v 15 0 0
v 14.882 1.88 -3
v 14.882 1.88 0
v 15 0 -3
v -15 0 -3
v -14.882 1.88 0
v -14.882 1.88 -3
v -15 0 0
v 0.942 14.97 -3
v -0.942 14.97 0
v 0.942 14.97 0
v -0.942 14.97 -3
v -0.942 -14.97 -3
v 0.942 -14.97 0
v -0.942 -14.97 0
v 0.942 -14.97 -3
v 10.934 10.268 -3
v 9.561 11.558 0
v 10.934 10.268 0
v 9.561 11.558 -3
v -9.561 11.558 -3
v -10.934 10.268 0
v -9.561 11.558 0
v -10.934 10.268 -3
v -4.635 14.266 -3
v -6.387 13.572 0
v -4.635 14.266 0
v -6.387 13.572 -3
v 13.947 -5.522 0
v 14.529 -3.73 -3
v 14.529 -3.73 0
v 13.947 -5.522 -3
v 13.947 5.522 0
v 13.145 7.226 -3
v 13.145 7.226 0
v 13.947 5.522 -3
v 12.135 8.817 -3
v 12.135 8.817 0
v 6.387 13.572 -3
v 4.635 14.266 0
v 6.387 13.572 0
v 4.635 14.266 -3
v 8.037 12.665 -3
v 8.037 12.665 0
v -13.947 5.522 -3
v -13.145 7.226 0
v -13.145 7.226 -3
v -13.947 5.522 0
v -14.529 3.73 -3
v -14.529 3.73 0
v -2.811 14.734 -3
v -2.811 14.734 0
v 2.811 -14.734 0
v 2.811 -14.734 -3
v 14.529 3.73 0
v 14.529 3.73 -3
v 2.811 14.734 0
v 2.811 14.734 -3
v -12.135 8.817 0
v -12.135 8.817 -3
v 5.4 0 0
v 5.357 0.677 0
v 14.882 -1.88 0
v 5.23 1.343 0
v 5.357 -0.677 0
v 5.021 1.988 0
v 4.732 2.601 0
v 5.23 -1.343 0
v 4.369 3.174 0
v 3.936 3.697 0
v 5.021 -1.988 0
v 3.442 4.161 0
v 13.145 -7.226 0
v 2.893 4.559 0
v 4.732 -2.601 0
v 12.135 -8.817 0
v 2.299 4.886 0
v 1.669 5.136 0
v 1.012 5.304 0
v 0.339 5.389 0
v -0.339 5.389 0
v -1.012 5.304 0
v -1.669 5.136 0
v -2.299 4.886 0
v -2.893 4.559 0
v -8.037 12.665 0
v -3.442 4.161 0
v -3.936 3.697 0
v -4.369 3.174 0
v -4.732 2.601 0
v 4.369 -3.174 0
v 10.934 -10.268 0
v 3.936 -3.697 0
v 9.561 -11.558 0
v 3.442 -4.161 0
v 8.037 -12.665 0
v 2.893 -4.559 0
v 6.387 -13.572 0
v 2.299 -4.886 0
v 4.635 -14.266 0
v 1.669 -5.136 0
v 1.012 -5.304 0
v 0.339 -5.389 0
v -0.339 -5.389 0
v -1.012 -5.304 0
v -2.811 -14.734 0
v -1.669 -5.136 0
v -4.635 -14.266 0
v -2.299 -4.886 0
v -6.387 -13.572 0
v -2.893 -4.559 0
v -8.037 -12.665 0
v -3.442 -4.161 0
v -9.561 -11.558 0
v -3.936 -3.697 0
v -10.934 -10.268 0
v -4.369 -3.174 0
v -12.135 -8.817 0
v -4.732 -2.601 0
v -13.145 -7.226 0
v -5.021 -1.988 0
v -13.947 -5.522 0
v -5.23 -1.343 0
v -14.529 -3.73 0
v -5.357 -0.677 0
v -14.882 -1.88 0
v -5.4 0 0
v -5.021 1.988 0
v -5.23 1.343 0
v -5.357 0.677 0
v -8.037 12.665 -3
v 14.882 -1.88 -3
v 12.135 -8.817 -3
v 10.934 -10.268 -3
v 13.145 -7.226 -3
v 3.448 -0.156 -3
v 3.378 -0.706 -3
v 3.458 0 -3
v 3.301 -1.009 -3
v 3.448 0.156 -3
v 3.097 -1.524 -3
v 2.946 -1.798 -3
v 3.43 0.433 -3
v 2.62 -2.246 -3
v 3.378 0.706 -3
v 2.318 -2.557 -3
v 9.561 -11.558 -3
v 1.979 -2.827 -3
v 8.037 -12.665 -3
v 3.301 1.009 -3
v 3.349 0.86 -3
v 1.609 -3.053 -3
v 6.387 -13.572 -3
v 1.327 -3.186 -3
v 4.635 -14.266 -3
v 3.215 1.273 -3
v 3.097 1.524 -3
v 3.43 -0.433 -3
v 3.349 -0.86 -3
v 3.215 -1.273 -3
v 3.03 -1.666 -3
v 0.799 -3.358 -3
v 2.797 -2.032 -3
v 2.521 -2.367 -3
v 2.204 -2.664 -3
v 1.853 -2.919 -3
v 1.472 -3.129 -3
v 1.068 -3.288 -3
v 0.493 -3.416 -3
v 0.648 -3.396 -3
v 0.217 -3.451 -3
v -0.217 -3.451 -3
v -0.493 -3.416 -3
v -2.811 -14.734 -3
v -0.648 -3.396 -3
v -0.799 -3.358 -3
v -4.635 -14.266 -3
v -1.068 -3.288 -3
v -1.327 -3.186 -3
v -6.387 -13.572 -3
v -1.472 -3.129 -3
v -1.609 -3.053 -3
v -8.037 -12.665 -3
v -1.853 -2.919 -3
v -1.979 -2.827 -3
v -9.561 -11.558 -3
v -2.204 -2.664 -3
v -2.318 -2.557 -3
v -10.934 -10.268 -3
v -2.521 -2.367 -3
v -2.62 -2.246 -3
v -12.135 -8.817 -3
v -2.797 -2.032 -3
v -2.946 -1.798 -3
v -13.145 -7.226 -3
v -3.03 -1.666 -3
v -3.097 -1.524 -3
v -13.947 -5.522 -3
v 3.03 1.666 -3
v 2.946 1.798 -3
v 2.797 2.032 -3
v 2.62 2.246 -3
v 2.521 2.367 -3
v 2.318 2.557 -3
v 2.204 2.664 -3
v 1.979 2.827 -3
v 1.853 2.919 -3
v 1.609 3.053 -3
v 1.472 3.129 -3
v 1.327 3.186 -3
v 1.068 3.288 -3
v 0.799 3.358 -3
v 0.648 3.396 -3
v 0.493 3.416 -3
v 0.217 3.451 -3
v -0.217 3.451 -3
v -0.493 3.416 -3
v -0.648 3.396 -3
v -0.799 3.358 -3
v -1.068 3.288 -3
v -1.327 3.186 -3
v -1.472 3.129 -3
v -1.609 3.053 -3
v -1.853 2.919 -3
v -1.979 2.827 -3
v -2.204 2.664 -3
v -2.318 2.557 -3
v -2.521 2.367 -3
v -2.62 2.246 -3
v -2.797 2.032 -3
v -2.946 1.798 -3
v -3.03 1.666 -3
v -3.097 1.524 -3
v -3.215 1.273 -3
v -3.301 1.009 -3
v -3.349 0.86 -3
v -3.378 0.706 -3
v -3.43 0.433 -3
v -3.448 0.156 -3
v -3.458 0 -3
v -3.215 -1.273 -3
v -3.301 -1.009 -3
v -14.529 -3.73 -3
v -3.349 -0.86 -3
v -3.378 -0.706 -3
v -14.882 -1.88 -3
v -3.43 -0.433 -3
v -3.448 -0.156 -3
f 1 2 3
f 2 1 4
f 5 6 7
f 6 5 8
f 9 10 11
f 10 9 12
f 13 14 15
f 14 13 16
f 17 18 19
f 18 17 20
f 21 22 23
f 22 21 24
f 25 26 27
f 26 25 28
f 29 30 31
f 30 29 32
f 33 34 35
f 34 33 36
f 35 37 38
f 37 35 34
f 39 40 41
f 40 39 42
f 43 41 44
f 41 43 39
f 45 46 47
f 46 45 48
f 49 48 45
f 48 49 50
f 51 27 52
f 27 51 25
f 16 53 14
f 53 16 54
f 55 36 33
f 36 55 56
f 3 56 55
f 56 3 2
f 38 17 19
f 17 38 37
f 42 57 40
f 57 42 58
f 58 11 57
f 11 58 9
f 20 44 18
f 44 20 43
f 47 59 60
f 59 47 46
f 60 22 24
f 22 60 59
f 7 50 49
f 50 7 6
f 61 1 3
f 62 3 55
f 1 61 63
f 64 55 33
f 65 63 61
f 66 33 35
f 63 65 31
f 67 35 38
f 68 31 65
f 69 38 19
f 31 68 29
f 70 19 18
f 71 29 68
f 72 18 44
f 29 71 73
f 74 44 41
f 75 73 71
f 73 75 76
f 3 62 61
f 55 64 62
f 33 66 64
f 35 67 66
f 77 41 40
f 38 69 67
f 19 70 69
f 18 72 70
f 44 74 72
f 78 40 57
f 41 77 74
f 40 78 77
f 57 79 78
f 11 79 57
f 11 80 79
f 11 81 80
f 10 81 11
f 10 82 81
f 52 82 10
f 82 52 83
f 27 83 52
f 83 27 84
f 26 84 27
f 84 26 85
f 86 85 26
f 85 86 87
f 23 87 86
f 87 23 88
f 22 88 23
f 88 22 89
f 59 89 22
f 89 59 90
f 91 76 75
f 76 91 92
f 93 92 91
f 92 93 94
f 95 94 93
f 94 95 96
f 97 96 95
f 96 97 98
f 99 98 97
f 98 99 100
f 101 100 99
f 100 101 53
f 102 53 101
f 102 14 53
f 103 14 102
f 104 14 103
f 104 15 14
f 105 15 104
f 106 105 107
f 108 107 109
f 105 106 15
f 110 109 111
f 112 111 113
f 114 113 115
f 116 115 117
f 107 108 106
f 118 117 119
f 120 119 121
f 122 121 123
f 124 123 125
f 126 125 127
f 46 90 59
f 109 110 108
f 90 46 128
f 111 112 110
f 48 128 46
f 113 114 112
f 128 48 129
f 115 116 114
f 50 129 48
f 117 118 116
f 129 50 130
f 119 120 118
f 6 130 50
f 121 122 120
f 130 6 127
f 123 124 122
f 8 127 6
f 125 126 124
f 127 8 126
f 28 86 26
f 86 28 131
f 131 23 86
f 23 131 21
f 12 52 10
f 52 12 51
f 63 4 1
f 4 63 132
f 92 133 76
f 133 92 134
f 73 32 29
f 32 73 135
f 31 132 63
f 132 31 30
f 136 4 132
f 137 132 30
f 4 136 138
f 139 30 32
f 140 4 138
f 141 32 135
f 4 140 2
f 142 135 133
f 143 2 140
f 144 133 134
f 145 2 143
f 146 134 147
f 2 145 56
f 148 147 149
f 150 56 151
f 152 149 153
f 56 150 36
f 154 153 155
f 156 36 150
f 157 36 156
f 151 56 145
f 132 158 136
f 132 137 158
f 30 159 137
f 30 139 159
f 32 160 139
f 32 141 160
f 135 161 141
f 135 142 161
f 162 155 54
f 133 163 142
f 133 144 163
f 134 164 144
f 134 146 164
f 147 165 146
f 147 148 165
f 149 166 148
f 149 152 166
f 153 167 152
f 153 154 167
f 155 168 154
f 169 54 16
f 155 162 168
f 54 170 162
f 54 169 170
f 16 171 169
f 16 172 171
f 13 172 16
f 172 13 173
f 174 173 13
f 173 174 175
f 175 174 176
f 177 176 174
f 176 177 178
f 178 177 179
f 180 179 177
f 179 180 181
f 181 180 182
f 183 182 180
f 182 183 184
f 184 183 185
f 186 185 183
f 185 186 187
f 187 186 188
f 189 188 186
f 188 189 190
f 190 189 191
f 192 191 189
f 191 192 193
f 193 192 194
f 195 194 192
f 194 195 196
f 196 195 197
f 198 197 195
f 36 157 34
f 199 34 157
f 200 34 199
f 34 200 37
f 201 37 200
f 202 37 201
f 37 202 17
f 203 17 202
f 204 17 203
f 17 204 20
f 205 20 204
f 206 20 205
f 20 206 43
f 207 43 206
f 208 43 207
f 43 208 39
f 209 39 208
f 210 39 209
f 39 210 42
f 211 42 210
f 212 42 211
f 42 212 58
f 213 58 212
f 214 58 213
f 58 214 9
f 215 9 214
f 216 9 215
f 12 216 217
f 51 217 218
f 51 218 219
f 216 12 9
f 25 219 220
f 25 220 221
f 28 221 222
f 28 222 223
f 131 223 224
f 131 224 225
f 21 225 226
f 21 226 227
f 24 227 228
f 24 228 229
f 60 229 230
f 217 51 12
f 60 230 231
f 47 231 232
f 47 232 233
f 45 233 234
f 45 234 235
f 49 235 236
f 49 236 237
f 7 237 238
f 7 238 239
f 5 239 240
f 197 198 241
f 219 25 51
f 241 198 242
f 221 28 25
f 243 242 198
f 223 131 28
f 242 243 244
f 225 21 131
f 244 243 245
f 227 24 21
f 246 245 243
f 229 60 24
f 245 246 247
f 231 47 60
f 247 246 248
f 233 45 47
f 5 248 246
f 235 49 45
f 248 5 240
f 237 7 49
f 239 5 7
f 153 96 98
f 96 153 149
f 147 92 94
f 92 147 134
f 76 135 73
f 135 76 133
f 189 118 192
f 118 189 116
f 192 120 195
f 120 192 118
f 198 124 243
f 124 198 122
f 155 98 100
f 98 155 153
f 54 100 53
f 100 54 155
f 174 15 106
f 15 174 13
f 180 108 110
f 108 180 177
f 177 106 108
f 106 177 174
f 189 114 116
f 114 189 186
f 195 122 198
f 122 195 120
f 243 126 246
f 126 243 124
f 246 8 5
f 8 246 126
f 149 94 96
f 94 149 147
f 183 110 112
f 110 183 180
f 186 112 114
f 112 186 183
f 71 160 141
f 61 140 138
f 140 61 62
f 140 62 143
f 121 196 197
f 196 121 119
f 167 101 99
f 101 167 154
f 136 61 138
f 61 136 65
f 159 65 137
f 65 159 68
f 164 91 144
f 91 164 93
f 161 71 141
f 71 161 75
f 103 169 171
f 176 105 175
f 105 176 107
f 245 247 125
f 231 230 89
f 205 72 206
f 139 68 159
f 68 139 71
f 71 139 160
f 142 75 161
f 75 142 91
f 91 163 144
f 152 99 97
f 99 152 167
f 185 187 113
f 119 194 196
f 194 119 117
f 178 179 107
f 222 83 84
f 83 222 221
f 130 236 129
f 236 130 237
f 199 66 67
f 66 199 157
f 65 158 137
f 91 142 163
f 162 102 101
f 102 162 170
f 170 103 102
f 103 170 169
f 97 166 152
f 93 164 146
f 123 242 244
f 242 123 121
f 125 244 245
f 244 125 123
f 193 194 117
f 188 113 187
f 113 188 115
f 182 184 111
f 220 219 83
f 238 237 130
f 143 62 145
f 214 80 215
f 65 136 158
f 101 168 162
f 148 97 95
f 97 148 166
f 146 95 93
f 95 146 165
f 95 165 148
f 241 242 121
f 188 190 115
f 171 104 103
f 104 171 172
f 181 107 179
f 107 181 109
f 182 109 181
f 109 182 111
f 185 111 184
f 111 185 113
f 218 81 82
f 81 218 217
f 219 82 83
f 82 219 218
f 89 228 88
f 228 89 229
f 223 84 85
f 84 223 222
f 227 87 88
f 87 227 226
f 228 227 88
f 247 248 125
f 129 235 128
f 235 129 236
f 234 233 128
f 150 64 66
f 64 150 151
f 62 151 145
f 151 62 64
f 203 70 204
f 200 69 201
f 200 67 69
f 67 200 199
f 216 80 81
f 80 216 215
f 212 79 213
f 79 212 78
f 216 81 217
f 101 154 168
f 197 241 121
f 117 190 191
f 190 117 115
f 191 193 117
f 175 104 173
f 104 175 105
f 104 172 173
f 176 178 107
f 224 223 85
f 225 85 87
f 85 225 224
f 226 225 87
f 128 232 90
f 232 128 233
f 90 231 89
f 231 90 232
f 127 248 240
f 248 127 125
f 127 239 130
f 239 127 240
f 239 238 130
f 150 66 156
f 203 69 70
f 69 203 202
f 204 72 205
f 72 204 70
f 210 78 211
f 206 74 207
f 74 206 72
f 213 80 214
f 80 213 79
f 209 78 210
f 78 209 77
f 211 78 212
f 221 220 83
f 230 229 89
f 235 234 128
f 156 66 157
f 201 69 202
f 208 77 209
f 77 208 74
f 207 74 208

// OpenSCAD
$fn = 50;


difference() {
	union() {
		translate(v = [0, 0, -3.0000000000]) {
			cylinder(h = 3, r = 15.0000000000);
		}
		#translate(v = [0, 0, -6.0000000000]) {
			cylinder(h = 6, r = 2.8750000000);
		}
	}
	union() {
		translate(v = [0, 0, 0]) {
			rotate(a = [0, 0, 0]) {
				difference() {
					union() {
						translate(v = [0, 0, -6.0000000000]) {
							cylinder(h = 6, r = 2.6000000000);
						}
						translate(v = [0, 0, -3.9000000000]) {
							cylinder(h = 3.9000000000, r1 = 2.8750000000, r2 = 5.4000000000);
						}
						translate(v = [0, 0, -6.0000000000]) {
							cylinder(h = 6, r = 2.8750000000);
						}
						translate(v = [0, 0, -6.0000000000]) {
							cylinder(h = 6, r = 2.6000000000);
						}
					}
					union();
				}
			}
		}
	}
}
